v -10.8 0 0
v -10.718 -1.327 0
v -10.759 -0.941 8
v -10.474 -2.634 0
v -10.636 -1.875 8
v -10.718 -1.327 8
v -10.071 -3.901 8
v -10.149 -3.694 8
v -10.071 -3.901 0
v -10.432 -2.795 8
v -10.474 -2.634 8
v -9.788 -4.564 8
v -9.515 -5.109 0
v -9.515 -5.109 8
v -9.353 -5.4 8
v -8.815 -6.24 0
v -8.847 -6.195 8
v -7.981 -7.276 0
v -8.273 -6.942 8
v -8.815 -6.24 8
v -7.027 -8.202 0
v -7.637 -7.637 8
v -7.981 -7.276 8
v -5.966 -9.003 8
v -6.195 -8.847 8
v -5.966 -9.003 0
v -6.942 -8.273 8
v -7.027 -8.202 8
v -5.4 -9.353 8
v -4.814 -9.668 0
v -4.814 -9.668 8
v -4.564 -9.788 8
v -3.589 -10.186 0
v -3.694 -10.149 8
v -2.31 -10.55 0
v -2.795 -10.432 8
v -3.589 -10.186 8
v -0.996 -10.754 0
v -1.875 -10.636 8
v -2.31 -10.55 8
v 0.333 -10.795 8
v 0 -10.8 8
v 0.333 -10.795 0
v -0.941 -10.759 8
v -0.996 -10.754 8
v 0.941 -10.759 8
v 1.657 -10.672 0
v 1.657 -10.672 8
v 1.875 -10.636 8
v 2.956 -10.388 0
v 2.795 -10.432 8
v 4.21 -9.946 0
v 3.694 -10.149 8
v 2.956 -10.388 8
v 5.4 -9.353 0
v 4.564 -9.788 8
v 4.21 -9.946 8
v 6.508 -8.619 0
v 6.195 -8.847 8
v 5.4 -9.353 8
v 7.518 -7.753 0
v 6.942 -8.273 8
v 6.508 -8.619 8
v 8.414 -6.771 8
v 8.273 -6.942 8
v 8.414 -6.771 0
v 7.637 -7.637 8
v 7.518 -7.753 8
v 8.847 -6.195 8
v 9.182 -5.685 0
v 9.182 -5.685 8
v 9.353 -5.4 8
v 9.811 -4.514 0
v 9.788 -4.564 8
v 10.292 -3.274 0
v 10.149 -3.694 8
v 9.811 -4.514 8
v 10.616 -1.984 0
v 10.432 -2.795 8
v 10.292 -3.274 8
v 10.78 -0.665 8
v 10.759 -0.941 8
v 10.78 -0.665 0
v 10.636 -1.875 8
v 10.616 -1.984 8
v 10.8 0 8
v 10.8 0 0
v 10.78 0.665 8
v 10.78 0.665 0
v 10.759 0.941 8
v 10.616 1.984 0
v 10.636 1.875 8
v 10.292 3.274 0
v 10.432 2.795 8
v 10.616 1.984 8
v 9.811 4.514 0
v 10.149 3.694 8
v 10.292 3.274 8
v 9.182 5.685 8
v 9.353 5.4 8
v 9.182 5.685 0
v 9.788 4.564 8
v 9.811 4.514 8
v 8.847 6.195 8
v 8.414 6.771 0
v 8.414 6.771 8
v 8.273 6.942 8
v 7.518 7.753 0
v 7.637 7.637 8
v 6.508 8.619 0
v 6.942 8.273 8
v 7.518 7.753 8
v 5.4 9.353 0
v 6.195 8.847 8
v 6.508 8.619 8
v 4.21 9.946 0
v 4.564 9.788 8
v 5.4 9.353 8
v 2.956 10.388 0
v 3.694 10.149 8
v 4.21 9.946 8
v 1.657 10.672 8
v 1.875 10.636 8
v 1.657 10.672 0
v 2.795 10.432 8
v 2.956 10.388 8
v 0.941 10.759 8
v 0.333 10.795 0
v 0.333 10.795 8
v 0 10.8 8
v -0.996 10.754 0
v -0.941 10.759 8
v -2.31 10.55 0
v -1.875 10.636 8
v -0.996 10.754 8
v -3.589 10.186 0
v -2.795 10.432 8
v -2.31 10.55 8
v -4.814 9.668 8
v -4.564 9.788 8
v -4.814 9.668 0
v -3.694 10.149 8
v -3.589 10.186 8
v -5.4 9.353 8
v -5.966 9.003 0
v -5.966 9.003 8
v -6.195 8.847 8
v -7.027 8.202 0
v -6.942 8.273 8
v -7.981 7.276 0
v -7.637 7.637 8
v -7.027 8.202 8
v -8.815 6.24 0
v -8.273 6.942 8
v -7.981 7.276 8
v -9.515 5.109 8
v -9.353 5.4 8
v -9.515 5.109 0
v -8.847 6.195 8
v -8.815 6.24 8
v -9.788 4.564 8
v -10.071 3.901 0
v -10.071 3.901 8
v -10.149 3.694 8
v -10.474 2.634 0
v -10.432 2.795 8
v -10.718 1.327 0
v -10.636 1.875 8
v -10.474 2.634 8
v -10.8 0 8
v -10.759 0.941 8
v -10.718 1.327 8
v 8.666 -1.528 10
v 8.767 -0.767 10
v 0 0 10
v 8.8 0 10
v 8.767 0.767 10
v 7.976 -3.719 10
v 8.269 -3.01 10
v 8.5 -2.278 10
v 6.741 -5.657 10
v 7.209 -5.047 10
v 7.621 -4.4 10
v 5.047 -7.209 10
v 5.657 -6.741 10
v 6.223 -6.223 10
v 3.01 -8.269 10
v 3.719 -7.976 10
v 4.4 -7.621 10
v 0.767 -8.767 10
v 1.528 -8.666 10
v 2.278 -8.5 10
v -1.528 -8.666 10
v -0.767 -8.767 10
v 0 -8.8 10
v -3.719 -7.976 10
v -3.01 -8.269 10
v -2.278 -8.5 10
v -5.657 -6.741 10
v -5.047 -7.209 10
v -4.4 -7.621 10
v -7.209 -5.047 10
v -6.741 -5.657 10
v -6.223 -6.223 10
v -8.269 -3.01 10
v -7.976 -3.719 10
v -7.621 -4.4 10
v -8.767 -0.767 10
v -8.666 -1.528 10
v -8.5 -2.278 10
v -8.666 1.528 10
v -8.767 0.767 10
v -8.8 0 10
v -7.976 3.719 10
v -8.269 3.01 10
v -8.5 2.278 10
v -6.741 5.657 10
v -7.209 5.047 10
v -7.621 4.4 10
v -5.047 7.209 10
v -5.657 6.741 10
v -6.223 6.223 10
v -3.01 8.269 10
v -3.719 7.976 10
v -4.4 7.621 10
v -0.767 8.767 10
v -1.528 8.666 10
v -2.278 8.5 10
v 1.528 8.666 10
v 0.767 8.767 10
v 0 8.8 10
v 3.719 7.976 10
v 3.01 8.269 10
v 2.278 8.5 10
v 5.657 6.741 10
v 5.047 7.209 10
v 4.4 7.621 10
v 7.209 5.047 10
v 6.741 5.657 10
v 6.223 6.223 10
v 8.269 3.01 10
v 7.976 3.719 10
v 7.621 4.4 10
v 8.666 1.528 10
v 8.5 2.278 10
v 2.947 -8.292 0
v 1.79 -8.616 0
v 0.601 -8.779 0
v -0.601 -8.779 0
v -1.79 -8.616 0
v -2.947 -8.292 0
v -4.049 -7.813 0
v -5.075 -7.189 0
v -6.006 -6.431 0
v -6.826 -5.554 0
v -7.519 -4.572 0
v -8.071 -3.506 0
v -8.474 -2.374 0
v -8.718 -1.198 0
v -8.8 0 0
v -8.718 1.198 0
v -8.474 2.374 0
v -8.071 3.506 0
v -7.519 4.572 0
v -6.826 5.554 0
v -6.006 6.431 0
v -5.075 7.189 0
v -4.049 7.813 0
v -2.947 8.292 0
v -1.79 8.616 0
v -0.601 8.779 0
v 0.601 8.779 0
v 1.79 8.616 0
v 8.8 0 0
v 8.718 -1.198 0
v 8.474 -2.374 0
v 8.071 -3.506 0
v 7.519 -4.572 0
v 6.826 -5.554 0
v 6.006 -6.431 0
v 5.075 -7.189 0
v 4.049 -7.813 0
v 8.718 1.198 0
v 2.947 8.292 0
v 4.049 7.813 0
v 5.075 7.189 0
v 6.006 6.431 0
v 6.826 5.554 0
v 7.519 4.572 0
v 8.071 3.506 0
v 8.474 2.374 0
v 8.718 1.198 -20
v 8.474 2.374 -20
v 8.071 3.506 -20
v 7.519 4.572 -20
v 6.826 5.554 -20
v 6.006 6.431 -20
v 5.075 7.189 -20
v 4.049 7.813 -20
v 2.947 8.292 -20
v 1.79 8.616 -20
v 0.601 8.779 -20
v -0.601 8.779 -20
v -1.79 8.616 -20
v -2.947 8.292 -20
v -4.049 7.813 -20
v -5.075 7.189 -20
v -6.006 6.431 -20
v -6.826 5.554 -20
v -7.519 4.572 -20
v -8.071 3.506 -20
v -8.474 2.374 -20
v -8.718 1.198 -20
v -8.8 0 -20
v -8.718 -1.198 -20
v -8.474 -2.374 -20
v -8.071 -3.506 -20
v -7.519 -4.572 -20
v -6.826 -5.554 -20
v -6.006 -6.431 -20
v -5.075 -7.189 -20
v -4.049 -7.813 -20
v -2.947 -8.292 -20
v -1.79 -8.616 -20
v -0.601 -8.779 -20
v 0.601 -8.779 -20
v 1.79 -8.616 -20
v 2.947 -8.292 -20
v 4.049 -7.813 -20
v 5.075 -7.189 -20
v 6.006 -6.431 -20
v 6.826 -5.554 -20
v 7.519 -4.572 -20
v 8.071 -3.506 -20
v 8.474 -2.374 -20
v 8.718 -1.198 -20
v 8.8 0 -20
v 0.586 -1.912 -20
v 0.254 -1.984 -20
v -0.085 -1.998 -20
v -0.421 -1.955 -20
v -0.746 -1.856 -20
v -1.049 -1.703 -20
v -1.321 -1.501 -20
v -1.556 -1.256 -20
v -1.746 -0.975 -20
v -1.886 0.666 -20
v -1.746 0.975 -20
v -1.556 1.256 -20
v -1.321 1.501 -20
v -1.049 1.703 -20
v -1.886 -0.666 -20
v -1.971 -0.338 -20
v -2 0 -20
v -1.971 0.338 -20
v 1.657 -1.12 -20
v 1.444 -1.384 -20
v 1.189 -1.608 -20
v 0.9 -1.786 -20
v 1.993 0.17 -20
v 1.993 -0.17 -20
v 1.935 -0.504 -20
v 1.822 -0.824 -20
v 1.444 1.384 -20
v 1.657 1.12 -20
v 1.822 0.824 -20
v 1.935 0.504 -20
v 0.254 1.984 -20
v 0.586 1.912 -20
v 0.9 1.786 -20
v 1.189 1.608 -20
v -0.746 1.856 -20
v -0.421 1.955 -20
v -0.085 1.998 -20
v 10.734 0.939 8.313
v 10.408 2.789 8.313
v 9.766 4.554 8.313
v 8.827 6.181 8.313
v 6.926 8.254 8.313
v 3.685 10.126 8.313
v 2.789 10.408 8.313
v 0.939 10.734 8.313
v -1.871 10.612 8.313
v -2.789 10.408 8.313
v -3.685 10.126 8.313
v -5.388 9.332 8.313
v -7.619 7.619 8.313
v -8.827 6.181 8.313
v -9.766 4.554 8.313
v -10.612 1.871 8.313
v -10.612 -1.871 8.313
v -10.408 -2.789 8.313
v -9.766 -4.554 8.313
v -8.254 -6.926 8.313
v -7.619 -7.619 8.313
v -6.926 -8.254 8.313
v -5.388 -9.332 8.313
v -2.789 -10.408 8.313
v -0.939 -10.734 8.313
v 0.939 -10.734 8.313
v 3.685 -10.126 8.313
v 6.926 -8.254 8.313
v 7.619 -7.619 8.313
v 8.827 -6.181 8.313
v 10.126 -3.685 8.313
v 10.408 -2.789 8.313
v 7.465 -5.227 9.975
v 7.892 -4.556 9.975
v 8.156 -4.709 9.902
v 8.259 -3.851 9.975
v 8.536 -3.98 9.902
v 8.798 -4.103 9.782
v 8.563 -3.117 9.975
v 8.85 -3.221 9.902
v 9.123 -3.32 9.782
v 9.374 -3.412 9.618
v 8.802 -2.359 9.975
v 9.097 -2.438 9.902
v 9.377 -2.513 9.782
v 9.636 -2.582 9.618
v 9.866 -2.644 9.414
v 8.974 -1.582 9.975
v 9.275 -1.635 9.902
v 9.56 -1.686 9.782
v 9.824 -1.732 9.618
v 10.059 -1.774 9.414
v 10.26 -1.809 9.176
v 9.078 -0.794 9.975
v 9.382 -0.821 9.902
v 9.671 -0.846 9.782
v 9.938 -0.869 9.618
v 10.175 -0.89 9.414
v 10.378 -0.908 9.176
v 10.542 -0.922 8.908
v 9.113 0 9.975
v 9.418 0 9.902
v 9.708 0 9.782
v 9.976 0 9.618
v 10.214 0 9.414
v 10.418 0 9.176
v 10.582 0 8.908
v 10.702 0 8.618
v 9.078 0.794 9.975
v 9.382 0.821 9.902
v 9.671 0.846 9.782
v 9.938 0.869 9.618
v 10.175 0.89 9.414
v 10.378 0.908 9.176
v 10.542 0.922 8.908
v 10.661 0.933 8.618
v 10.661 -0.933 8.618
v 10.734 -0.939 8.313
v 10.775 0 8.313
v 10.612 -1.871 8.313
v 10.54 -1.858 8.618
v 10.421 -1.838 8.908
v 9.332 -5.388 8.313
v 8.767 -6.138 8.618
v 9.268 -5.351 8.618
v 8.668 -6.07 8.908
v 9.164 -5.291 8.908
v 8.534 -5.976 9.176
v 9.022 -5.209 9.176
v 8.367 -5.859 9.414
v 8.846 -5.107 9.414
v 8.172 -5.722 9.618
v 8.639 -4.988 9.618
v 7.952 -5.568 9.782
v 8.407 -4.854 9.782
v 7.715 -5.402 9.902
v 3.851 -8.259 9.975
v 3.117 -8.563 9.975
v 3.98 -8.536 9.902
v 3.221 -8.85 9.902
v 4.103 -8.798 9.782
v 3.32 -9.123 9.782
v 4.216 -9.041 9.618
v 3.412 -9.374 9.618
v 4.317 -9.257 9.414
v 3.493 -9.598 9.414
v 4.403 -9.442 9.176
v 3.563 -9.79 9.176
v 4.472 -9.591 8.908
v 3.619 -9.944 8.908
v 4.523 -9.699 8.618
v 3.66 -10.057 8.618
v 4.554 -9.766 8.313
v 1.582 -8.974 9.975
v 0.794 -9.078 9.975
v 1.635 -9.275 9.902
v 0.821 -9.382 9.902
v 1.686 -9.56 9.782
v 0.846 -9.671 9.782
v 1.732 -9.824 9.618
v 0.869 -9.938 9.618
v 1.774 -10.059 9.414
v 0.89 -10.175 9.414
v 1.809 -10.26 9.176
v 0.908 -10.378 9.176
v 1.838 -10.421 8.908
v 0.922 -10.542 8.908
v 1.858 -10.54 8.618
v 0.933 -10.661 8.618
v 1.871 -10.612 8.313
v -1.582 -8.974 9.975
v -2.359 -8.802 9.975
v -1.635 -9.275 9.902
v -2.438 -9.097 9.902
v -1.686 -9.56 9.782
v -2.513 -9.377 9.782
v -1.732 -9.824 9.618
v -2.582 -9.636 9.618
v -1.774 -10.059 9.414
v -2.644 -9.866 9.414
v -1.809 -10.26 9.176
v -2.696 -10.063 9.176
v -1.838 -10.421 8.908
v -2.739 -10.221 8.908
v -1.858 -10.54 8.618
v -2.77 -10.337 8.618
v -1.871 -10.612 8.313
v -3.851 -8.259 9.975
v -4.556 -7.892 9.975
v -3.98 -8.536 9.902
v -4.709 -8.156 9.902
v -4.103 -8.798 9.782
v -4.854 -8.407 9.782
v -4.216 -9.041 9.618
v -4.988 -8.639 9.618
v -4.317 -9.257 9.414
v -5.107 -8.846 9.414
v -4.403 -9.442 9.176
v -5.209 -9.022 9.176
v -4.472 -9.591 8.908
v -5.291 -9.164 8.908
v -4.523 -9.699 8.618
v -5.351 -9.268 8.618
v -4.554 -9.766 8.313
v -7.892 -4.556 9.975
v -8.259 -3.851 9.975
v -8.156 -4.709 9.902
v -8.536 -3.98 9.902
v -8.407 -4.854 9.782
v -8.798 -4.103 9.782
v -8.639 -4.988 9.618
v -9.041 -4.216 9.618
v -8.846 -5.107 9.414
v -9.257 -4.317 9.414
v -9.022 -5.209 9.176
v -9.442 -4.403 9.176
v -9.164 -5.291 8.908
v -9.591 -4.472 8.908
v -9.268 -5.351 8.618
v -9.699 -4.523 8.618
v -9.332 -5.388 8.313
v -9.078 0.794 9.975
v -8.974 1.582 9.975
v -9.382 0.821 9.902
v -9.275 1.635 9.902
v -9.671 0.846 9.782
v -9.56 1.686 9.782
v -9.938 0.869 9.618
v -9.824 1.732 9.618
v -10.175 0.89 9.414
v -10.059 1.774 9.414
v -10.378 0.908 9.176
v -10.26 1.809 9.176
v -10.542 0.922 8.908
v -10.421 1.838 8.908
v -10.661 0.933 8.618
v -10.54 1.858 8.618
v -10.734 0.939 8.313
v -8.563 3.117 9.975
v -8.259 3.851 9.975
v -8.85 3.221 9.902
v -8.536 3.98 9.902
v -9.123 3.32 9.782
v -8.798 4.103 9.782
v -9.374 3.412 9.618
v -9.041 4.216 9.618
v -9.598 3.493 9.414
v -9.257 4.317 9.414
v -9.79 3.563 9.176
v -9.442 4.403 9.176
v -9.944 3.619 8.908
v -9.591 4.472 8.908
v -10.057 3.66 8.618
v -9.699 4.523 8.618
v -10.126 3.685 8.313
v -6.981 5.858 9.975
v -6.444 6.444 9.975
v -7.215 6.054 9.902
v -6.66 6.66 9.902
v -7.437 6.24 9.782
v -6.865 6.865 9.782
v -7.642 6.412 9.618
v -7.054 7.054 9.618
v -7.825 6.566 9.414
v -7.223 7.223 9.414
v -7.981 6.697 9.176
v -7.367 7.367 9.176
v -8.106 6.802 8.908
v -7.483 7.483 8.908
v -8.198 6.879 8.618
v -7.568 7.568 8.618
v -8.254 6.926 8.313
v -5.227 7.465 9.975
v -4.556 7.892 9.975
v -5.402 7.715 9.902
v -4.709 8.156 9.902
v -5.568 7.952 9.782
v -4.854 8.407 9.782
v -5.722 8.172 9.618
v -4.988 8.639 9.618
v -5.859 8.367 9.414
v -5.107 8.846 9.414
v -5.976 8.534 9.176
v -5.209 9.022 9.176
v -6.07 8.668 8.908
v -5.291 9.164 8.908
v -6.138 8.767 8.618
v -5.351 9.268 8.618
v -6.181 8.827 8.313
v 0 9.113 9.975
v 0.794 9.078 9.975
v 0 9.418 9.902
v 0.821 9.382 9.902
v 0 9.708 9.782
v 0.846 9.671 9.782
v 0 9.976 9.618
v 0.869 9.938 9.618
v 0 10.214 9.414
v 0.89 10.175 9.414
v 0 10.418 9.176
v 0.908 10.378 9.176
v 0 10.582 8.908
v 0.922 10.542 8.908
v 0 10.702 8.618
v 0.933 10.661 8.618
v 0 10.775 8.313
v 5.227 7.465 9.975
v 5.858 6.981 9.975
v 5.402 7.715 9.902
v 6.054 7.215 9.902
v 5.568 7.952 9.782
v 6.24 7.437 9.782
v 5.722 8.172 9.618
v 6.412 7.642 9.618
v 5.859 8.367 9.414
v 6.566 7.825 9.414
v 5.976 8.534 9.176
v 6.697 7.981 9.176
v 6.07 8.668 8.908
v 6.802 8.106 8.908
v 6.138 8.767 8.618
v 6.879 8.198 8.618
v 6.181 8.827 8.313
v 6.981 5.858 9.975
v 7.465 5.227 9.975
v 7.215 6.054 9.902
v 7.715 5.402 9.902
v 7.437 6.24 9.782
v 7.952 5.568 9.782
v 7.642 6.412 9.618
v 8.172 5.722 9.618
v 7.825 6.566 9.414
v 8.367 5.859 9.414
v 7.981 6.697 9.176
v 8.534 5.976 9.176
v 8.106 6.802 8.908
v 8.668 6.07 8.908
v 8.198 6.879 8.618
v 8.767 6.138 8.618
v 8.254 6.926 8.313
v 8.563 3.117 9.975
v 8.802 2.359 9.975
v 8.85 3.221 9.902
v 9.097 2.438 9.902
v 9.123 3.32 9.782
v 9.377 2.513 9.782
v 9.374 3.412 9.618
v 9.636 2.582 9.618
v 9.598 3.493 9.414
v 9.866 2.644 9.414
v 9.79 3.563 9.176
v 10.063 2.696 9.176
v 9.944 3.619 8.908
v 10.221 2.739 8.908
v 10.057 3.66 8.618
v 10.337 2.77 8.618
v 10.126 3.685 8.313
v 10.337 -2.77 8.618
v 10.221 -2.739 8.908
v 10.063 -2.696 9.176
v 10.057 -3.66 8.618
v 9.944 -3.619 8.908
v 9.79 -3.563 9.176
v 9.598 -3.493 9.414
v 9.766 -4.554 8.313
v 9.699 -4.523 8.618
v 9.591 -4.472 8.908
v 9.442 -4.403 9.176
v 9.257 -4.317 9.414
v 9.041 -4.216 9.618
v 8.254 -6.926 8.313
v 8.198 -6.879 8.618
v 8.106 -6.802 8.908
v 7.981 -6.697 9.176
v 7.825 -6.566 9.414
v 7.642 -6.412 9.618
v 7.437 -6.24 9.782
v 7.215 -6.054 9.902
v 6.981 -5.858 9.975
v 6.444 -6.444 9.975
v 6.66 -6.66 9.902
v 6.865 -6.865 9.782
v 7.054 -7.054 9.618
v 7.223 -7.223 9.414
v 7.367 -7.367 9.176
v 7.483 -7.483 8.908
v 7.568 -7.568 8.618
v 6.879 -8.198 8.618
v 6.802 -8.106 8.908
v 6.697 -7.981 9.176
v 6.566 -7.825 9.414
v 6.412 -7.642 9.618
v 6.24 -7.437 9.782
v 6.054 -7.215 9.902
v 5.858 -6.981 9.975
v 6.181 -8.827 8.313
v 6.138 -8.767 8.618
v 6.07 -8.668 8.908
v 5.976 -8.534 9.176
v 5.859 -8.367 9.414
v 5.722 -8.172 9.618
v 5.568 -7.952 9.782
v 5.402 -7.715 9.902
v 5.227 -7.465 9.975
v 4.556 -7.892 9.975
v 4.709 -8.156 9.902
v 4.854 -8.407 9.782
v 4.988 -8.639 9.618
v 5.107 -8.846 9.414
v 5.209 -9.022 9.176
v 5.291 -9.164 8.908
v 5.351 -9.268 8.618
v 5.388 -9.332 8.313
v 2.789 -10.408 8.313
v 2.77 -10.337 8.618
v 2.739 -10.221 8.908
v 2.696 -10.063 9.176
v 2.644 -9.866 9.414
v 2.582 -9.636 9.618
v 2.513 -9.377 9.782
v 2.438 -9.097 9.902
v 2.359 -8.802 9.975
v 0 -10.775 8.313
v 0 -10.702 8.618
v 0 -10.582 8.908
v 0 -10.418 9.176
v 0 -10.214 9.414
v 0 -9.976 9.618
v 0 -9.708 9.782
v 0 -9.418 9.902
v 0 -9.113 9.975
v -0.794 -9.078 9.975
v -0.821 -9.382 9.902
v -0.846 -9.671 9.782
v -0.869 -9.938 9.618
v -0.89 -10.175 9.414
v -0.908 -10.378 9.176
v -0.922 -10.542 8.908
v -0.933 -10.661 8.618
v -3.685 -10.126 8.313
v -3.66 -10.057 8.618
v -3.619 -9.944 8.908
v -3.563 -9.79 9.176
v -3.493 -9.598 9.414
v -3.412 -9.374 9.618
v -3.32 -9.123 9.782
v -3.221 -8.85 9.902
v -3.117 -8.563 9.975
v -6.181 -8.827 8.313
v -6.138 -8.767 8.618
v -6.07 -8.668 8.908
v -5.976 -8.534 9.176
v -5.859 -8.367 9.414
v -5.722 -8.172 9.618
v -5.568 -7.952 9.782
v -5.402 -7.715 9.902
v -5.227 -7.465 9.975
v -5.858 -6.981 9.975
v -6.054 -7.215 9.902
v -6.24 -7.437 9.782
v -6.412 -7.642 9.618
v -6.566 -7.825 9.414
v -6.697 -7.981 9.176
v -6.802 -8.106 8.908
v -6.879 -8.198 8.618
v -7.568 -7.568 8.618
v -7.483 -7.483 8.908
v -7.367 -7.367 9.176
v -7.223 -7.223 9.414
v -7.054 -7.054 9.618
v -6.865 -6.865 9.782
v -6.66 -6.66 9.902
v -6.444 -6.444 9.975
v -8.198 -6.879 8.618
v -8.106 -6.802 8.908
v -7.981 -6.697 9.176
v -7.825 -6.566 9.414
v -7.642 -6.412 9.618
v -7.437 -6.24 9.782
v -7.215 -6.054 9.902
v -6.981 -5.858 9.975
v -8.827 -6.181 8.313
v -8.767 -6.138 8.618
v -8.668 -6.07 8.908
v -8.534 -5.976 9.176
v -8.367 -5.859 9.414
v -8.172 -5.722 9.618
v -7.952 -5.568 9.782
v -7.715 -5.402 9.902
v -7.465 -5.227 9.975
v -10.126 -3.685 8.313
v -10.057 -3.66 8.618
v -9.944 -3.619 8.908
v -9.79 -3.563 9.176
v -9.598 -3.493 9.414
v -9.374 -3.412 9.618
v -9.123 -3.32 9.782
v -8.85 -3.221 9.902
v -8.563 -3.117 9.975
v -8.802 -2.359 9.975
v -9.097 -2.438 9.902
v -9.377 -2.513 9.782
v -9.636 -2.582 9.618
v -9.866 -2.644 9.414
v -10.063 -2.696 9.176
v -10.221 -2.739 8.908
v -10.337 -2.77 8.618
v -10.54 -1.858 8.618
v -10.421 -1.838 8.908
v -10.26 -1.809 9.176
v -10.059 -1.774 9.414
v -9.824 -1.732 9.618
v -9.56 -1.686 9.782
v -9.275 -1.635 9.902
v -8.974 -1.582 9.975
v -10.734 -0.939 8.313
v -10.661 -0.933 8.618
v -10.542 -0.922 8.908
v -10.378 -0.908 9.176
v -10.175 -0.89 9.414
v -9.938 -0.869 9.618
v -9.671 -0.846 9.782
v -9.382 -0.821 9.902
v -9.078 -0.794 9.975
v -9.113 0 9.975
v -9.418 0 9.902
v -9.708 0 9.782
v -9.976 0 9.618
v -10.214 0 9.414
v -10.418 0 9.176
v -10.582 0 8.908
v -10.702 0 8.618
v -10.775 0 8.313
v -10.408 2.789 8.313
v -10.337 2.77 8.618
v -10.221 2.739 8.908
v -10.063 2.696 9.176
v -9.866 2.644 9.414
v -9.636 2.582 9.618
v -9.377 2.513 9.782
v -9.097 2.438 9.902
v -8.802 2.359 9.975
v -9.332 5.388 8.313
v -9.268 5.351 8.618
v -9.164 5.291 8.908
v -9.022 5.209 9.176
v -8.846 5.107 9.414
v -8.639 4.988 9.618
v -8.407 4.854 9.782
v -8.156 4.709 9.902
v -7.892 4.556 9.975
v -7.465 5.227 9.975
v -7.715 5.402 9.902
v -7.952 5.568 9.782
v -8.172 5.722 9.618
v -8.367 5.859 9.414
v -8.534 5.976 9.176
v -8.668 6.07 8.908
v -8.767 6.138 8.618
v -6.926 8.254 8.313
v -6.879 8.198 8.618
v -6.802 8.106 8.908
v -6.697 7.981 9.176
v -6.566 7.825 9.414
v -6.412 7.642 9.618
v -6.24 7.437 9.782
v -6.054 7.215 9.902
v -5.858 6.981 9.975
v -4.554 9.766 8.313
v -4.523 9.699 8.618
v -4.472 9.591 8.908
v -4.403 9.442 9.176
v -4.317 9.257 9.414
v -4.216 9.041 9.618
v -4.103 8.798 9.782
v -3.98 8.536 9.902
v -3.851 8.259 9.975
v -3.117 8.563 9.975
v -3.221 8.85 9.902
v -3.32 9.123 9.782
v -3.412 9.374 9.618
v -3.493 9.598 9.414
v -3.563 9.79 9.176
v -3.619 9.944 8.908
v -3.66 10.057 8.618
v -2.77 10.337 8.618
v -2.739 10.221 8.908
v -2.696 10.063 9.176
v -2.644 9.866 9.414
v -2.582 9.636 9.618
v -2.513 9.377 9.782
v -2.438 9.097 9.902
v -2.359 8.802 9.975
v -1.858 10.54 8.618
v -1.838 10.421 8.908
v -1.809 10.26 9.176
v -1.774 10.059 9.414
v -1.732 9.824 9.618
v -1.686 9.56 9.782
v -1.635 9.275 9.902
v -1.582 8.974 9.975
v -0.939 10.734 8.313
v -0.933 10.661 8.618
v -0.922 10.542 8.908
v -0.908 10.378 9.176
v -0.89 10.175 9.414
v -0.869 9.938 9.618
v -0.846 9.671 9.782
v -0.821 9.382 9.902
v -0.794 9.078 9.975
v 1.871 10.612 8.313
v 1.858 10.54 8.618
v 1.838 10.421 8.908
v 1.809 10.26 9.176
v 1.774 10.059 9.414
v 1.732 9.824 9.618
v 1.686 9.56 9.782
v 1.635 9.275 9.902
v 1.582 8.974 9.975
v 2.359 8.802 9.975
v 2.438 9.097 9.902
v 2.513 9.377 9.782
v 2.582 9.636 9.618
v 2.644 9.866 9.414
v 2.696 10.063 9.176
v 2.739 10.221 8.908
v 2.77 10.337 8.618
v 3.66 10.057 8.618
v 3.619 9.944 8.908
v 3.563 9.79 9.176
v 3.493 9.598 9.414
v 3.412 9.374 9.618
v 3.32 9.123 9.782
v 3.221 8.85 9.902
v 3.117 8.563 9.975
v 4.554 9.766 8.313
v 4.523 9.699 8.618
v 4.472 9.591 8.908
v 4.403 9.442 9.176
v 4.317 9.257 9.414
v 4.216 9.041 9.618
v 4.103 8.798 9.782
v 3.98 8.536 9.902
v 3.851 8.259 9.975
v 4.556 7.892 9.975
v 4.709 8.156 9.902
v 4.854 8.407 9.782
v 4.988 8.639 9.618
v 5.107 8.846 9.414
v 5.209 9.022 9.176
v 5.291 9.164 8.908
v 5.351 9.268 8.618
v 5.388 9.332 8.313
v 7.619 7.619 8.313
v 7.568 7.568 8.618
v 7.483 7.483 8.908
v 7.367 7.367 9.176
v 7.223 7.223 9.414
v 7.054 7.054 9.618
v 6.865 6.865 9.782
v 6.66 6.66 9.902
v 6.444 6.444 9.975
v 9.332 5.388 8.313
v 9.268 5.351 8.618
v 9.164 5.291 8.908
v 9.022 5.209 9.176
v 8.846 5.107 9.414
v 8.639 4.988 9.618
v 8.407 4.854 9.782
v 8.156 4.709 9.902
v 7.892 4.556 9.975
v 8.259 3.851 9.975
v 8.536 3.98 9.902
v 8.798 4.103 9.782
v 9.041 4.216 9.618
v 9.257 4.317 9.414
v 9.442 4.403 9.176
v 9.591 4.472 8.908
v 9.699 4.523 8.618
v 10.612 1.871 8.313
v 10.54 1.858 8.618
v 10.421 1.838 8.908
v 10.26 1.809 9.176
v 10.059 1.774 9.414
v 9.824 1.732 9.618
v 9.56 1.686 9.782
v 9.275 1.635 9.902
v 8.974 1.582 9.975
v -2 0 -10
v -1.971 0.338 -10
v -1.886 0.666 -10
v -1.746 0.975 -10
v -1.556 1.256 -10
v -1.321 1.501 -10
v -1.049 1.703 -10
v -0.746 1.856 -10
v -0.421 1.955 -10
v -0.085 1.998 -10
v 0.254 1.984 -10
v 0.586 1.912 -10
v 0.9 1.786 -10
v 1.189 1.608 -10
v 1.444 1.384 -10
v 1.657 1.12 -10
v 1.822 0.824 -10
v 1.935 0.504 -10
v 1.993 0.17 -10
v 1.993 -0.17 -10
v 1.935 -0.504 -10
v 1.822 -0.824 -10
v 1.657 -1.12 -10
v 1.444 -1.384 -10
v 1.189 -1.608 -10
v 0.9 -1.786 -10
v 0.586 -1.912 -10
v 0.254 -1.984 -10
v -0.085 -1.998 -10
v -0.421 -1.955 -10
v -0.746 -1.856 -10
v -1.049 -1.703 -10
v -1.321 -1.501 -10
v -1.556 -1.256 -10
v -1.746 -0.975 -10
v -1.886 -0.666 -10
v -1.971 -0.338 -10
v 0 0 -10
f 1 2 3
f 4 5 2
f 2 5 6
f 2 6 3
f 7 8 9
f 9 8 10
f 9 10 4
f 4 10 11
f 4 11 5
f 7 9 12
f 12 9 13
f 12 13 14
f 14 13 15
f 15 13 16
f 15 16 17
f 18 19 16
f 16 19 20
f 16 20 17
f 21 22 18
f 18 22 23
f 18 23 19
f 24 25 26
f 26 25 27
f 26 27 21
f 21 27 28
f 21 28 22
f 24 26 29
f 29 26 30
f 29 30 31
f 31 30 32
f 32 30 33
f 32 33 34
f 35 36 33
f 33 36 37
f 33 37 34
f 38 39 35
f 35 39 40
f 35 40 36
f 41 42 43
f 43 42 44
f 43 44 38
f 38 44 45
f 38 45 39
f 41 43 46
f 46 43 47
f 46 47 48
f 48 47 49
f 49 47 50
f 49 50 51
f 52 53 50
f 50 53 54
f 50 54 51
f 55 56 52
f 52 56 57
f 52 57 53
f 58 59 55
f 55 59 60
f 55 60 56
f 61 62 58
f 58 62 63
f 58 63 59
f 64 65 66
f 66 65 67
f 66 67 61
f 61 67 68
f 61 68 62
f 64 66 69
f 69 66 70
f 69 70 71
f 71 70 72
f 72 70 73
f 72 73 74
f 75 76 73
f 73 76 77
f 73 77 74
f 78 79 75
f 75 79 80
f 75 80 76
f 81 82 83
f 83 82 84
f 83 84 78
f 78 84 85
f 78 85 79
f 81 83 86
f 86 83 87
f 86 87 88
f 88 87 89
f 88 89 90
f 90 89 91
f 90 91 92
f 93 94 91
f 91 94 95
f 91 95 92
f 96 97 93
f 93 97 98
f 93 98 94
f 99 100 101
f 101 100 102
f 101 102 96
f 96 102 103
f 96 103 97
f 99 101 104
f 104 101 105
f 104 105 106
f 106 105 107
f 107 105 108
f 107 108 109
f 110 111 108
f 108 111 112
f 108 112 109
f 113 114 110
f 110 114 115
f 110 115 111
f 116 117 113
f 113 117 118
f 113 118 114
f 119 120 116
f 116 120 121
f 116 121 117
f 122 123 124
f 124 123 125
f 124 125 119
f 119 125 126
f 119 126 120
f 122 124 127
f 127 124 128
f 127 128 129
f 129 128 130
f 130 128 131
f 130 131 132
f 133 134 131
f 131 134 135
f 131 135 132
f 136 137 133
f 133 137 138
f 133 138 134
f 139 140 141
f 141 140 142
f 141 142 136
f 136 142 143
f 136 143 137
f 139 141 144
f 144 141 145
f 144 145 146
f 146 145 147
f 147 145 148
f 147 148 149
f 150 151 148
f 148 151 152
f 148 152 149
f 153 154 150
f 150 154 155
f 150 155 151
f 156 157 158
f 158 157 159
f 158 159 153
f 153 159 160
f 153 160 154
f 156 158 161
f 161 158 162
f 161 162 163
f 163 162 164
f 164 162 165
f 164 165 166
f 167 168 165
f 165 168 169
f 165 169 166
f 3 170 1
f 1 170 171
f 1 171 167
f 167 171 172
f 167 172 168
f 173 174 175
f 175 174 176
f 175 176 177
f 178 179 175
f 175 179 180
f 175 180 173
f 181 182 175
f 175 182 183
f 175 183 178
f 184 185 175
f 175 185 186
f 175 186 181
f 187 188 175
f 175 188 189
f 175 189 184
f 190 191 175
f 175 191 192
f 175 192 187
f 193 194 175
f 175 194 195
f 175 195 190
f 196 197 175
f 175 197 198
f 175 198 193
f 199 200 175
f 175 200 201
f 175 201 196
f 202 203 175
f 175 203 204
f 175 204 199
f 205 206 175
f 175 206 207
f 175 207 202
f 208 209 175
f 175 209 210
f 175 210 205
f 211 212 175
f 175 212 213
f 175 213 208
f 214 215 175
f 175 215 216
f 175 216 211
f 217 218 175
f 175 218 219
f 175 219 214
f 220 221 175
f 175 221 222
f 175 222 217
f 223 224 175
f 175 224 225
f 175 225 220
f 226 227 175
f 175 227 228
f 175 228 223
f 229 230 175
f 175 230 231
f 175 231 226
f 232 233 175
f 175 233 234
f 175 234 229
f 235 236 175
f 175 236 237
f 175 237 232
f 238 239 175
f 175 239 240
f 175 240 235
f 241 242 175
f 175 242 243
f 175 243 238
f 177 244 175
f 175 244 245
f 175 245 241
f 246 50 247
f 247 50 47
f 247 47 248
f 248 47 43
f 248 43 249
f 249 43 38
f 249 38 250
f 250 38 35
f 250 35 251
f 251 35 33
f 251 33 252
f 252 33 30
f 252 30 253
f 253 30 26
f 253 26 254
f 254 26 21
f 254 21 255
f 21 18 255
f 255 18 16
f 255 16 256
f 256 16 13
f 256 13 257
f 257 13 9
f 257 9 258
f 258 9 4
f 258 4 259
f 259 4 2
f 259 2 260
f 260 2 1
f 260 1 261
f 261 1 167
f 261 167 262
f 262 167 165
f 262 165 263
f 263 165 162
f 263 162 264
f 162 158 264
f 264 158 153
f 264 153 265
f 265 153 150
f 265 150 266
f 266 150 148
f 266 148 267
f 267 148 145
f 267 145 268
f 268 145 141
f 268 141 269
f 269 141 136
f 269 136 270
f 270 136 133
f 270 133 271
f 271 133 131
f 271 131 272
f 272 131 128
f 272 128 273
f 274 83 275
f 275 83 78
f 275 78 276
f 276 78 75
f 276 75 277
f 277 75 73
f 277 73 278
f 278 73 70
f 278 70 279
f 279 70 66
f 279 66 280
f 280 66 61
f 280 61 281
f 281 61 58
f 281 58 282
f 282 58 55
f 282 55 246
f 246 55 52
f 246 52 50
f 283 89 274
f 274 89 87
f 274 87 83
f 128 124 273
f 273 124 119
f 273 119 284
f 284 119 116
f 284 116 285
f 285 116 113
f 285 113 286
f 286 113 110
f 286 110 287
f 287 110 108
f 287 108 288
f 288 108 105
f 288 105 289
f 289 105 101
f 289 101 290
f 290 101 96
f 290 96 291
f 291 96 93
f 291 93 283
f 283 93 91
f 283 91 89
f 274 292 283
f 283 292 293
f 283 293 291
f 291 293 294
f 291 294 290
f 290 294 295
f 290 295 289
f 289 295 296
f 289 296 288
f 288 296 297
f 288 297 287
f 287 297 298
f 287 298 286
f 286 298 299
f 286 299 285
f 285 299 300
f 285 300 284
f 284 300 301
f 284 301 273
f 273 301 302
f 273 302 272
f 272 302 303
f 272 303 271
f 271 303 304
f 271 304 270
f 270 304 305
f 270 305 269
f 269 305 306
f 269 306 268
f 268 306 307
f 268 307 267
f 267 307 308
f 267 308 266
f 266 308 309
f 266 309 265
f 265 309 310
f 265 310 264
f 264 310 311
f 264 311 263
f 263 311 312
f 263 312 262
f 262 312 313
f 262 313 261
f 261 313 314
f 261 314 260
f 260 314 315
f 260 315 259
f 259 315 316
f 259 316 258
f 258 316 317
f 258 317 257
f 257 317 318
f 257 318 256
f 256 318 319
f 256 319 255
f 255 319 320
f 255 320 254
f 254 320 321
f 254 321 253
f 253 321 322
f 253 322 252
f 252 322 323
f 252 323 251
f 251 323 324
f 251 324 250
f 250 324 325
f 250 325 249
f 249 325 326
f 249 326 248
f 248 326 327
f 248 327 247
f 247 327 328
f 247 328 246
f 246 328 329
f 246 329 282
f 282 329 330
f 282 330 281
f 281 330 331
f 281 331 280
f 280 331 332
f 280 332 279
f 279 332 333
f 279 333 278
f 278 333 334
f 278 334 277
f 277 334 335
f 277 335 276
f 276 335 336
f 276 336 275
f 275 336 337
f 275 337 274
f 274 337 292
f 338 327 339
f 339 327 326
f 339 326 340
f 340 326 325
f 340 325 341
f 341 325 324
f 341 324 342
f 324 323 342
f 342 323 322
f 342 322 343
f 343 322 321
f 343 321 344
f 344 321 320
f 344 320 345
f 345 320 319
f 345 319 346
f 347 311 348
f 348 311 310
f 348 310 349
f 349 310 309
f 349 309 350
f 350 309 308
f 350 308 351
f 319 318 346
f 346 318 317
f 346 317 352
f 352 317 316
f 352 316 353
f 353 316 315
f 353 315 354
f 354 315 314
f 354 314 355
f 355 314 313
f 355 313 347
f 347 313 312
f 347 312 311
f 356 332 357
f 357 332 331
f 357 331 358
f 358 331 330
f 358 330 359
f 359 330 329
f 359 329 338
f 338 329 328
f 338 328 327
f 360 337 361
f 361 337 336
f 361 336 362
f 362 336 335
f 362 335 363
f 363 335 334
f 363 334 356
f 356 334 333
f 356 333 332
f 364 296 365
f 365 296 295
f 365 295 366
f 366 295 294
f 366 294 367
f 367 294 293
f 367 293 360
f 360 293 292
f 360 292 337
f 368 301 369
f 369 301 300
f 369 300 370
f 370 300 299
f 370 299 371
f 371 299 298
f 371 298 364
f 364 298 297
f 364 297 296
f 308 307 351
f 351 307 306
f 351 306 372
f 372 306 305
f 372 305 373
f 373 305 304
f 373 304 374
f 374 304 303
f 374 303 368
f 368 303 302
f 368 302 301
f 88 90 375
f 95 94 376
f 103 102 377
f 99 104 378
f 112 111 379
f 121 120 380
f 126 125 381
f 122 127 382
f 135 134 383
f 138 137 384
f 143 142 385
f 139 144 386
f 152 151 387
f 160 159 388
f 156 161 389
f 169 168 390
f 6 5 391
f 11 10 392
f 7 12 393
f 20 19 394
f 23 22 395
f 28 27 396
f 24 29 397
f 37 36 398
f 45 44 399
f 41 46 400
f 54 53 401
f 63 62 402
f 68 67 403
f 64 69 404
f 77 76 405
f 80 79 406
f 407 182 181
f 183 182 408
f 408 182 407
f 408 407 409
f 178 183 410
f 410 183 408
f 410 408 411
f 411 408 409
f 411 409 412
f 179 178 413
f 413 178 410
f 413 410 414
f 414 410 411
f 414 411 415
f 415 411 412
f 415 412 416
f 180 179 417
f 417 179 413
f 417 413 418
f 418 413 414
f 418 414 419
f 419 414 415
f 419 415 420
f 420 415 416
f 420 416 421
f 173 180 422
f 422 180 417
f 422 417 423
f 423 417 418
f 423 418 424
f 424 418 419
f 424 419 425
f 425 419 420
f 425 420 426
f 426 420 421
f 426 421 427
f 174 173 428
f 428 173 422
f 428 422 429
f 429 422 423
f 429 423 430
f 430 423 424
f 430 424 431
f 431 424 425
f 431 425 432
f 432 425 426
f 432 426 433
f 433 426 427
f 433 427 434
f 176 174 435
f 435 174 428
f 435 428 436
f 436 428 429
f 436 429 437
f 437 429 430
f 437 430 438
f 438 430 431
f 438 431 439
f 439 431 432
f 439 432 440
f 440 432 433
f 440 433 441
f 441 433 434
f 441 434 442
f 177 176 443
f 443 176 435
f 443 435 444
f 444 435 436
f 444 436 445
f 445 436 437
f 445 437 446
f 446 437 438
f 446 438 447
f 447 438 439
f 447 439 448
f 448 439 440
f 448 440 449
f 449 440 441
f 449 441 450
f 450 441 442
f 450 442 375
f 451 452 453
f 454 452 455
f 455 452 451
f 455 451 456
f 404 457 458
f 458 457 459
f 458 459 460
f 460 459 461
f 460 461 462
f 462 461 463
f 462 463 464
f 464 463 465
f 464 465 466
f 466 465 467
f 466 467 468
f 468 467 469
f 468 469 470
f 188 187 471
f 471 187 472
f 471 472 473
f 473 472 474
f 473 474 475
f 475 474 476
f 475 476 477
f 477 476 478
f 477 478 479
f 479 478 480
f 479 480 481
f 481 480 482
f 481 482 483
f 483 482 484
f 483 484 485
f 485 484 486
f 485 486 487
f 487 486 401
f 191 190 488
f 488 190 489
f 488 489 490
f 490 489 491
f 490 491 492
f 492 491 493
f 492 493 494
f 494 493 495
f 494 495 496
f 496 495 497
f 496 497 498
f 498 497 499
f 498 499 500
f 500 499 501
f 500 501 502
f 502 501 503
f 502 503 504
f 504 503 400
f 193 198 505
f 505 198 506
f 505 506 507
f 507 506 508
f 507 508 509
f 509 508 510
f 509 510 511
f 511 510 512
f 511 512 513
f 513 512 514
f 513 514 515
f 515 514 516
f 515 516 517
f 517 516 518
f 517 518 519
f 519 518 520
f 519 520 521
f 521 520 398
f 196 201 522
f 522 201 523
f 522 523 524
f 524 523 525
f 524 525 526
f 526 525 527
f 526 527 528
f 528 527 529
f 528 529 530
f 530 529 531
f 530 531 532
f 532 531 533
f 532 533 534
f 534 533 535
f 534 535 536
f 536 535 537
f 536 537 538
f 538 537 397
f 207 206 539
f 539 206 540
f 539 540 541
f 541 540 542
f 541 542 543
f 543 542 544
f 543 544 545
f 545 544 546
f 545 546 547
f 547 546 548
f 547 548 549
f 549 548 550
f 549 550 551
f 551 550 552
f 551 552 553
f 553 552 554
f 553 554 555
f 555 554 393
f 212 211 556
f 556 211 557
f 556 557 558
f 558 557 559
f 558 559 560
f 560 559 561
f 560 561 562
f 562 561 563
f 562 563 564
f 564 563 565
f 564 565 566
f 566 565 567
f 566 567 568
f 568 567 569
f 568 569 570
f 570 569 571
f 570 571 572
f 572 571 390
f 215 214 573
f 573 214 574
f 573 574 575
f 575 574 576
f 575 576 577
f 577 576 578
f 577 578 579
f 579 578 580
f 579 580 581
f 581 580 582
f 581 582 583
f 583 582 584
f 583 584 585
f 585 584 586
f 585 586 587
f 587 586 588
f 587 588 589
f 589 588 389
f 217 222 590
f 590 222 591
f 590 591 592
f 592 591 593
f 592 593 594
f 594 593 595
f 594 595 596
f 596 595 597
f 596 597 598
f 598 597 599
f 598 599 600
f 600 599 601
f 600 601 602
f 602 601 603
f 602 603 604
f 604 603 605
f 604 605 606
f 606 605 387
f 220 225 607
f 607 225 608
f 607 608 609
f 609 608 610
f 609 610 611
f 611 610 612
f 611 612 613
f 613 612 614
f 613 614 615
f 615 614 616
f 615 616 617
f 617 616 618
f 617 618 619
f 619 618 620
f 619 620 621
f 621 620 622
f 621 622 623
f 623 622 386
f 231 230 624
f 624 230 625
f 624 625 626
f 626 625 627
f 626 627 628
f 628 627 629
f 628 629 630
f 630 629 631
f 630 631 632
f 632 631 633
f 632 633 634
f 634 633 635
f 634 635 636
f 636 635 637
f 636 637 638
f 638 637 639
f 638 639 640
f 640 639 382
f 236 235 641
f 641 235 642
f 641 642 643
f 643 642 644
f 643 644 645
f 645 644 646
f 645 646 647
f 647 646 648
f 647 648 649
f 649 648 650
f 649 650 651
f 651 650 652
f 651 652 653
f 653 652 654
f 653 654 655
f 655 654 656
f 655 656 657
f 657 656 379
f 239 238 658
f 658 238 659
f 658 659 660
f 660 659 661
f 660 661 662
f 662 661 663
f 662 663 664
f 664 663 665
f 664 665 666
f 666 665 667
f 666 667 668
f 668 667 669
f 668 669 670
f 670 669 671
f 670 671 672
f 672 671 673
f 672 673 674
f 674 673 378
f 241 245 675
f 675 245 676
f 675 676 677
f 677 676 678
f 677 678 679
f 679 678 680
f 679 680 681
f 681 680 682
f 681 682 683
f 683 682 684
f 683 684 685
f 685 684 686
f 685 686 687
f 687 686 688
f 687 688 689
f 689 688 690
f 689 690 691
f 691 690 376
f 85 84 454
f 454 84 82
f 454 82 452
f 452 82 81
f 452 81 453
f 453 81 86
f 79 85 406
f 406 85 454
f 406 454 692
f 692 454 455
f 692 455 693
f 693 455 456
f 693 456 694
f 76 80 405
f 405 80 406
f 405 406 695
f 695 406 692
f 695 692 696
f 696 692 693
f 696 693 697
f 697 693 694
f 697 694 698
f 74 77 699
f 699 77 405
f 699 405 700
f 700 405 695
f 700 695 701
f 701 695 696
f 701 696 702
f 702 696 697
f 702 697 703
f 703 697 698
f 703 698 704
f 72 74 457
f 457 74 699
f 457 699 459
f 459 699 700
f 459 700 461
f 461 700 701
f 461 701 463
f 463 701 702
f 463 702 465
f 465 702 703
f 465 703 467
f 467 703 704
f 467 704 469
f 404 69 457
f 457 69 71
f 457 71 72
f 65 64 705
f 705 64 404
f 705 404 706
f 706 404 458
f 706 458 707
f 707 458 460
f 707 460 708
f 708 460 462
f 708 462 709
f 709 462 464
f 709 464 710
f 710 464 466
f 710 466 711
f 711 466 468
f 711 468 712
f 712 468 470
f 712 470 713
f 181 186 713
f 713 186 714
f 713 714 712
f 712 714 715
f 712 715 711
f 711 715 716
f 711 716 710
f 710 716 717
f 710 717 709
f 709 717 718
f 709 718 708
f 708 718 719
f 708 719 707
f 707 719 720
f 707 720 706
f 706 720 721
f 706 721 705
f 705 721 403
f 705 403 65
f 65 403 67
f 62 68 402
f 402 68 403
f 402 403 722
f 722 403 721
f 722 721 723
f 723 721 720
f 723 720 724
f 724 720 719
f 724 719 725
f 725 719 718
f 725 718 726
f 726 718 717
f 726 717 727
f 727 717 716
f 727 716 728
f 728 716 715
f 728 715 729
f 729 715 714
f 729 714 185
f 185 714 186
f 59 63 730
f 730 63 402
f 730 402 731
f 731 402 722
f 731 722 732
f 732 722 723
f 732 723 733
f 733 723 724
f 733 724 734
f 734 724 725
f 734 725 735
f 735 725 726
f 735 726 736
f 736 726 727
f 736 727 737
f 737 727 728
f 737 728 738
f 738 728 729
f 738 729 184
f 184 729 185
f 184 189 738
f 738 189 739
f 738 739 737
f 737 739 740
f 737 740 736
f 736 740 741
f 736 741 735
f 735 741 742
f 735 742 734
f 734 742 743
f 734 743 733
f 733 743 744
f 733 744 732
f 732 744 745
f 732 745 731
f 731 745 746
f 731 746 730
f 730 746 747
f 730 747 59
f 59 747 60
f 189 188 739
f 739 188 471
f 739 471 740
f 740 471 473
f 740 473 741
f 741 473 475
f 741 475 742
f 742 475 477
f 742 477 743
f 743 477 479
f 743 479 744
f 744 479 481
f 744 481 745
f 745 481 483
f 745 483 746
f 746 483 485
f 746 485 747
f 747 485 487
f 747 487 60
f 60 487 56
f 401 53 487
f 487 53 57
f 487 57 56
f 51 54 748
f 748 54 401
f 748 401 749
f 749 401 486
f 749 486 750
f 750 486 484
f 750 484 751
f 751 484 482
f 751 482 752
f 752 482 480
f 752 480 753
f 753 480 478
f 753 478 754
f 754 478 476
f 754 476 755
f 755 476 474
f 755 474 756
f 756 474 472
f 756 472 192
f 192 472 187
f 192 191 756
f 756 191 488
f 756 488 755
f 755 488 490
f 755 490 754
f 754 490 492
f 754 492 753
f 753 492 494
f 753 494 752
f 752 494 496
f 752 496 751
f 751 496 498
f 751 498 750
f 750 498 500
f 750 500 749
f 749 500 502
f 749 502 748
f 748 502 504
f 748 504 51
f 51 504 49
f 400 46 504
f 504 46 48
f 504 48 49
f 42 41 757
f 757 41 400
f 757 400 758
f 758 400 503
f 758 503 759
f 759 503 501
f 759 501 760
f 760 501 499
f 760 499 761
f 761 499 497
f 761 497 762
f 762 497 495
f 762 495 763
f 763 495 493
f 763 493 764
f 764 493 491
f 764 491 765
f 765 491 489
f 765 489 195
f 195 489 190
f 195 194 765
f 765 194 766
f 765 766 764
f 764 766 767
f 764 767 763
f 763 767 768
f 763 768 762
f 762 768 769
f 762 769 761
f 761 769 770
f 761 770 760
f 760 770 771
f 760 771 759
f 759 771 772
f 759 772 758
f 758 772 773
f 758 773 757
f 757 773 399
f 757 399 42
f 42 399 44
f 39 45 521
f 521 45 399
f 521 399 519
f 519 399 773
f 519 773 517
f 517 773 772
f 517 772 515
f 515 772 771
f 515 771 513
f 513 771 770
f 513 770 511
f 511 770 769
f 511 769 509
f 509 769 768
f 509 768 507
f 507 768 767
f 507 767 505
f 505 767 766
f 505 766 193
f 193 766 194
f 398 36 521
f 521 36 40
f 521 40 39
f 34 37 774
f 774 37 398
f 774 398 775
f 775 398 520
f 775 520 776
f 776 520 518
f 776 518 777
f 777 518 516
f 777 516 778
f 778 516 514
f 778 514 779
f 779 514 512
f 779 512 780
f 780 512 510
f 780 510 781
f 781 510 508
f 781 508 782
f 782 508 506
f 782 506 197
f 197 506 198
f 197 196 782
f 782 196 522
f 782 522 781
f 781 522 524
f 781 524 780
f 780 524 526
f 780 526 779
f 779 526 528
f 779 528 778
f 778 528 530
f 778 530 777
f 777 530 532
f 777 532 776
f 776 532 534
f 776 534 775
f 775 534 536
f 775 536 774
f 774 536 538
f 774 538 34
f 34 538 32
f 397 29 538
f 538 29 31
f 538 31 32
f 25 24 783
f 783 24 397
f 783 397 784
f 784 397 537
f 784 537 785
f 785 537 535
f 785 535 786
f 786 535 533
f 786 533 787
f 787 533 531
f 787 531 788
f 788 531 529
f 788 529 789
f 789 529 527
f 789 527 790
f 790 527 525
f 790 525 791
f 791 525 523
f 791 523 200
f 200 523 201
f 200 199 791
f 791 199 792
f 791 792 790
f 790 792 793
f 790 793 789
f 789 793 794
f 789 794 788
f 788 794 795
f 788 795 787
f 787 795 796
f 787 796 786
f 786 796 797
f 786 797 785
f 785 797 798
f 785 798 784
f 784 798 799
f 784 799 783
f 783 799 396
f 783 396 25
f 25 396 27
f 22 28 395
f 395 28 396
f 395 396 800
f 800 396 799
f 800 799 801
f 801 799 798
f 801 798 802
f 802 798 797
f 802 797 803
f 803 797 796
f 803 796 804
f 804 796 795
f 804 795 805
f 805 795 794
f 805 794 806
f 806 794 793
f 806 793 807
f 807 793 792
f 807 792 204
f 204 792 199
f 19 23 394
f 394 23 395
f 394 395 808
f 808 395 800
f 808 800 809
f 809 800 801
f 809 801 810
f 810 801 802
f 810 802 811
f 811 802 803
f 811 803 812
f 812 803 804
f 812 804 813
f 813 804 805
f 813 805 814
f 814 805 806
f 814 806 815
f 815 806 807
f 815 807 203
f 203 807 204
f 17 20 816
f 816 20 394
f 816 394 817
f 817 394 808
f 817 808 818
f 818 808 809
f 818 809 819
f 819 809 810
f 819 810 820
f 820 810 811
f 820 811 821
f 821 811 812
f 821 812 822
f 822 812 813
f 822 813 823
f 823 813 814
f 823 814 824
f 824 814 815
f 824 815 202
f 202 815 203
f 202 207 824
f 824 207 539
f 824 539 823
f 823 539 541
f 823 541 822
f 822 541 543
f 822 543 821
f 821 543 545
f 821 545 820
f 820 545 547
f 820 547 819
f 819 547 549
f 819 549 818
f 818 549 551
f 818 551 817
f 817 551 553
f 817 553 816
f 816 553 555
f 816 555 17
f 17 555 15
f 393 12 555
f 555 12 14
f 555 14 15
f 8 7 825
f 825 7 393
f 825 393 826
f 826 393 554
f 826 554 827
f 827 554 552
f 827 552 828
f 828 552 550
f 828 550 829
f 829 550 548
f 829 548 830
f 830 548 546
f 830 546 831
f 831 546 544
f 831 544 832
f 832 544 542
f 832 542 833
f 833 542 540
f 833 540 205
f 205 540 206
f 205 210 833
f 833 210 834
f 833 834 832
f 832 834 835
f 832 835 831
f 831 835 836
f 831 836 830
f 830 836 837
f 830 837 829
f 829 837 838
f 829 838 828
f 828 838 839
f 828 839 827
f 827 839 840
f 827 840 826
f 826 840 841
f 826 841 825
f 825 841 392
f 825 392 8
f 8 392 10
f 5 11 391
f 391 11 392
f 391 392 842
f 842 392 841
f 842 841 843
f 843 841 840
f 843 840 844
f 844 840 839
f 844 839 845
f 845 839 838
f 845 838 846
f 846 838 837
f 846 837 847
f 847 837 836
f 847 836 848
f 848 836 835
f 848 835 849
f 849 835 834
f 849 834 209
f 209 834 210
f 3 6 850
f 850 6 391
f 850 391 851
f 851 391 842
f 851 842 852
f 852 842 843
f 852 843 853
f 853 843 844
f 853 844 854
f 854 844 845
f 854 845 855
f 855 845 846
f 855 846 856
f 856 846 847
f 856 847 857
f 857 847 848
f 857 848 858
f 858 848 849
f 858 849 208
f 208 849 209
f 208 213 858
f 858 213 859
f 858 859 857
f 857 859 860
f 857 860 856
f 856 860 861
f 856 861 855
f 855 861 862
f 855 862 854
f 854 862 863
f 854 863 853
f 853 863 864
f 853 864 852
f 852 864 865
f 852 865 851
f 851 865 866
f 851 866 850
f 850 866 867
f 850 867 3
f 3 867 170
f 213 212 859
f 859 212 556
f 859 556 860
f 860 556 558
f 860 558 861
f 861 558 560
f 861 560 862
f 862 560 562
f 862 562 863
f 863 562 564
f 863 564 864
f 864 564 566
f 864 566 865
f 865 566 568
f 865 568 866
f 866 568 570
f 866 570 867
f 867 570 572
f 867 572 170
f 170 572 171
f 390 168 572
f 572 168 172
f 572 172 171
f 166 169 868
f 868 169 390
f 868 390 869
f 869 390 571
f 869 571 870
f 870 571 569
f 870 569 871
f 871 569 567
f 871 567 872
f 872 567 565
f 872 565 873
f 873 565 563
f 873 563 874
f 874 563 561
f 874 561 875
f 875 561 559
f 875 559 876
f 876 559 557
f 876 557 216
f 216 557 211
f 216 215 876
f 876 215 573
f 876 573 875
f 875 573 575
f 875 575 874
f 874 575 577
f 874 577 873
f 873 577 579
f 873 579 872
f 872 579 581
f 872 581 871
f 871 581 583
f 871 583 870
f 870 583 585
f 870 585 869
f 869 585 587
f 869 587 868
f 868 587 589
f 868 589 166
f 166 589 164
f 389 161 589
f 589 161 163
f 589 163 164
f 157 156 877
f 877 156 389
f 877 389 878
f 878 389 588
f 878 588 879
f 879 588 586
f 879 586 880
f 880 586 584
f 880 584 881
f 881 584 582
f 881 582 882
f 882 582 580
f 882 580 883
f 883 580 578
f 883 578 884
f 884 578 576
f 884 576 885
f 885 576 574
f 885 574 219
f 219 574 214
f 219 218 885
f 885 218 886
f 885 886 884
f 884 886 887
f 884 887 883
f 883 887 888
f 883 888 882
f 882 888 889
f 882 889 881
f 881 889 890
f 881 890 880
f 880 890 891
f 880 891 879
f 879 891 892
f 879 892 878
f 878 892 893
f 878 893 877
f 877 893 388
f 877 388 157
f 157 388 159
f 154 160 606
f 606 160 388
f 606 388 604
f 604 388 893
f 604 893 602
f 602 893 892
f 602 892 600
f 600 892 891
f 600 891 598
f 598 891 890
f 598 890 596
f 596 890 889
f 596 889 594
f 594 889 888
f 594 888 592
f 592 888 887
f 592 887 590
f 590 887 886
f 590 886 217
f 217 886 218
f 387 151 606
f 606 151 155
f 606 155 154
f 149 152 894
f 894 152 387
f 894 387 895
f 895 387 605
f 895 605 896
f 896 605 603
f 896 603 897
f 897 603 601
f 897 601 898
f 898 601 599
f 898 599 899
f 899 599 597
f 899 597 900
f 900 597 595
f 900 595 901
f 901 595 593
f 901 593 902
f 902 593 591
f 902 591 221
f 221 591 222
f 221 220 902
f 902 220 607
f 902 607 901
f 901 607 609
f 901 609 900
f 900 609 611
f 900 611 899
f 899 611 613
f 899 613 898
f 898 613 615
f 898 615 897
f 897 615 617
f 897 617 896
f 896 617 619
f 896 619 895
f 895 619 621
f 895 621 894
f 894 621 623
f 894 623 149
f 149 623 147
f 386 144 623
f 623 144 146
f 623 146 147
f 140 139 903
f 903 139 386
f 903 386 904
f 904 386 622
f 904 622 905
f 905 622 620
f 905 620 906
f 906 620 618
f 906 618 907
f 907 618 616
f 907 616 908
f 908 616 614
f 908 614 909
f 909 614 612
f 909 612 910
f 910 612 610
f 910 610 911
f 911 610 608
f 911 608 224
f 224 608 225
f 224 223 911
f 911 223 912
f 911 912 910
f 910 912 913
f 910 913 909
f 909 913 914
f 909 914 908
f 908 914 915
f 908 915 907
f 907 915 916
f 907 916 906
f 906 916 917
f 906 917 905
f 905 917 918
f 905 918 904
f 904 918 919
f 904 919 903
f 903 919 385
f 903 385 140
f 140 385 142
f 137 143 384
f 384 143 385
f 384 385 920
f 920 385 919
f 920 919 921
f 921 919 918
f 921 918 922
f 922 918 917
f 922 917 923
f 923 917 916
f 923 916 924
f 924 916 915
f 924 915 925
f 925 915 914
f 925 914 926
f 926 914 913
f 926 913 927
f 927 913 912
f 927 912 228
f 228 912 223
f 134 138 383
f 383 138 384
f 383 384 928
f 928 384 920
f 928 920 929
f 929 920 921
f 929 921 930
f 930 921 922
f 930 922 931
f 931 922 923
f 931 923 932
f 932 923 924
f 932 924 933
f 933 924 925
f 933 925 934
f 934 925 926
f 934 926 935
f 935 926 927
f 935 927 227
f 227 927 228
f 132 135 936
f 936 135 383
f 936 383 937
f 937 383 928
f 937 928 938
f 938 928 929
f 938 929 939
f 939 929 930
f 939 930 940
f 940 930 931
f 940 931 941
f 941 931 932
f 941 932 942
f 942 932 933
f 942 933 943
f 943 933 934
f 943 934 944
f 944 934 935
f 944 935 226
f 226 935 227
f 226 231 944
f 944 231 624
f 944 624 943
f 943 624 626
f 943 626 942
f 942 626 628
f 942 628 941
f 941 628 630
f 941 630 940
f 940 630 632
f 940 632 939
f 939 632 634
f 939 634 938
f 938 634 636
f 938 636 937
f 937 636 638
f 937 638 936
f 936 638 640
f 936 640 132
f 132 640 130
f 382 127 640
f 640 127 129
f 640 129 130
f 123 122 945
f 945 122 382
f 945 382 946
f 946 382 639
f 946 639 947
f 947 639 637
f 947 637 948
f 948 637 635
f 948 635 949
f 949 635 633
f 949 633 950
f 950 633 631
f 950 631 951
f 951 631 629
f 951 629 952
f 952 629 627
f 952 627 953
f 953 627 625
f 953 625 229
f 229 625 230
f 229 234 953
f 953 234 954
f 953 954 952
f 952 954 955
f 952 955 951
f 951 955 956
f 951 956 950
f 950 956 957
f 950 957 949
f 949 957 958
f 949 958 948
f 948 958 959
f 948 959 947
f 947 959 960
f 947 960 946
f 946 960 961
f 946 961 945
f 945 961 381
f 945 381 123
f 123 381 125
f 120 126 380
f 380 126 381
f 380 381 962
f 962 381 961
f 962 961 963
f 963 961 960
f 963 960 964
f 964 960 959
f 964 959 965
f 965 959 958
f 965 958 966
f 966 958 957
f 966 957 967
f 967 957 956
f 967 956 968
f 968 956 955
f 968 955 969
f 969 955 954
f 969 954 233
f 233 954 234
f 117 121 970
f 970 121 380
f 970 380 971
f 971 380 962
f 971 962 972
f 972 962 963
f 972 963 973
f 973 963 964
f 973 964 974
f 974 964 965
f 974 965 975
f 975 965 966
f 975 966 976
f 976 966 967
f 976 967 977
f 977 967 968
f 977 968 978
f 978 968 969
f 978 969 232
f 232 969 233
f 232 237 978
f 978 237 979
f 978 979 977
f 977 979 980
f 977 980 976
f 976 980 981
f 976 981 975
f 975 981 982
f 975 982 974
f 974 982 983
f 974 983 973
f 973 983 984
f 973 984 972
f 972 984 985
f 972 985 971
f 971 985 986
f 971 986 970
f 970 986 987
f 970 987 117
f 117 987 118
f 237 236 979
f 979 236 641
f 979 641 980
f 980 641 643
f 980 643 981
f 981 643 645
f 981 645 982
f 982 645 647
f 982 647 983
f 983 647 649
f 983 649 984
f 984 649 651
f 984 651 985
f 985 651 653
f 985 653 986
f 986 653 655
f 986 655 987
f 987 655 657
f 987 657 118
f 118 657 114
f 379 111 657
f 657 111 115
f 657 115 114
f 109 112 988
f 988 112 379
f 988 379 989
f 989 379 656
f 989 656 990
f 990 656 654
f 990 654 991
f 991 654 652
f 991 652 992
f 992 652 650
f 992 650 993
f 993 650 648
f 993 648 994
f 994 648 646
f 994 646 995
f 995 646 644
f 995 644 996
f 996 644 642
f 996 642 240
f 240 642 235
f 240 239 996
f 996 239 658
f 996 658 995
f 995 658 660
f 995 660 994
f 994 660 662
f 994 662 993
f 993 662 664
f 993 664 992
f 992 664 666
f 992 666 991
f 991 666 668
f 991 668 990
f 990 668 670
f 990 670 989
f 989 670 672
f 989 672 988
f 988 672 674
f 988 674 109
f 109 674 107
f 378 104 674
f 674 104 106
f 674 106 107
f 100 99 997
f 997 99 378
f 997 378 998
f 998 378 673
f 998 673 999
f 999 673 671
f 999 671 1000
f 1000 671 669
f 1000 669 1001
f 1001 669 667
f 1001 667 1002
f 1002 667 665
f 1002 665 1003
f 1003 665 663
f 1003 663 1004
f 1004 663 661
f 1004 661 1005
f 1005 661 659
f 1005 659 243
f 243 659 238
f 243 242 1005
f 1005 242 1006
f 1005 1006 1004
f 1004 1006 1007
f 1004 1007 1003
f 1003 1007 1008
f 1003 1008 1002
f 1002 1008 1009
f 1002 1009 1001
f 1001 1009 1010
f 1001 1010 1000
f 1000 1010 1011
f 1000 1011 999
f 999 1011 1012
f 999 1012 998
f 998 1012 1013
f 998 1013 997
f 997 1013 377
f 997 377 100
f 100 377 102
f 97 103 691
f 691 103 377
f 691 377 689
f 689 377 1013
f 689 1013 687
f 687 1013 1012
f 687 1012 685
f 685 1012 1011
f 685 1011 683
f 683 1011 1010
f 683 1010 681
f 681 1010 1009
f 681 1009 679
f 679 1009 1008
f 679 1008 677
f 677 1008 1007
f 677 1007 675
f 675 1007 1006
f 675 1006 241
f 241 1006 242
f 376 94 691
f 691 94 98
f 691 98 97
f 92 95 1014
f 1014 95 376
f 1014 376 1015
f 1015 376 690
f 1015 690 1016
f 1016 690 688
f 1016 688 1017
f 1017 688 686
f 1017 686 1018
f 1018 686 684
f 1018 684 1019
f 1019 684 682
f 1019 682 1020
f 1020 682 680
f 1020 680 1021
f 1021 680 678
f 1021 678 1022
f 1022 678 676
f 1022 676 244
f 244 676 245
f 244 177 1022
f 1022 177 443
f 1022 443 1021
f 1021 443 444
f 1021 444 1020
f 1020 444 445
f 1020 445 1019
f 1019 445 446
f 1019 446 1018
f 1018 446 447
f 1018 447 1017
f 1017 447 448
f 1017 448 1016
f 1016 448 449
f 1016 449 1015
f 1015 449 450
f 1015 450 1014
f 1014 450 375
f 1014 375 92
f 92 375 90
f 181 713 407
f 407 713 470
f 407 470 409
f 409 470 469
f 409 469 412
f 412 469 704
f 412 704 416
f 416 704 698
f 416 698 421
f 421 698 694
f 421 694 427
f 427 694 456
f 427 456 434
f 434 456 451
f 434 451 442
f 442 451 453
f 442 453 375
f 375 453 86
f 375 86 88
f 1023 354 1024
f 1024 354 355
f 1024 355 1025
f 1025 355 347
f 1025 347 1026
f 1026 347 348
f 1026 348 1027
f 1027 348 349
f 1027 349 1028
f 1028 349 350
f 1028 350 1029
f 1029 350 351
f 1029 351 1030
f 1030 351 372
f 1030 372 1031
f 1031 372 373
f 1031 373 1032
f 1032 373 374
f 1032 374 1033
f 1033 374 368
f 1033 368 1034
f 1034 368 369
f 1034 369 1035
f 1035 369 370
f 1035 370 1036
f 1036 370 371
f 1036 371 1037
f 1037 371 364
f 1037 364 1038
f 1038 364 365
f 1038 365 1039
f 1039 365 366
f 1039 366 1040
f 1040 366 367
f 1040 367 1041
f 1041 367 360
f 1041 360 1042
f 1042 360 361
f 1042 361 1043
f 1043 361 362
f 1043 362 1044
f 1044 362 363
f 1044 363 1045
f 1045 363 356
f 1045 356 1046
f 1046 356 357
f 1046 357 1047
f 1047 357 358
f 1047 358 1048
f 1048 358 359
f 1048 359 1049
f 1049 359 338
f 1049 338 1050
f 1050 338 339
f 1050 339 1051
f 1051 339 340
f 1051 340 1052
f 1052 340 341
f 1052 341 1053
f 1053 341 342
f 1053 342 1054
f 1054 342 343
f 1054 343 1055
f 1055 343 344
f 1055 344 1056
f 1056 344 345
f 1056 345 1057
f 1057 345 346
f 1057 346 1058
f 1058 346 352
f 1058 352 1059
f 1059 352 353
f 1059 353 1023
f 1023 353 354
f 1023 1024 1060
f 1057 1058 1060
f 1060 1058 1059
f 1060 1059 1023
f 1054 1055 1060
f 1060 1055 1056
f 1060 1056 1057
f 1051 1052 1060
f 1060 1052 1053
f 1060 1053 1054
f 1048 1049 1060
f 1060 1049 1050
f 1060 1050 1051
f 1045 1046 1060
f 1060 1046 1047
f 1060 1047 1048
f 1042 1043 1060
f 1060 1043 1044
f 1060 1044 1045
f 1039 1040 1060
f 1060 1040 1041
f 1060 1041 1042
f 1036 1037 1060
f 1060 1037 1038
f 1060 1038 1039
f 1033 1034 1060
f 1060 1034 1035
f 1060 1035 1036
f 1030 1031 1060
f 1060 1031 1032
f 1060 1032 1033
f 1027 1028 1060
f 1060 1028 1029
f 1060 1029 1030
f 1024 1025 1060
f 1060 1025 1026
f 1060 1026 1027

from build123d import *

# Parameters (mm, degrees)
SKETCH_1_R          = 10.8
EXTRUDE_1_DEPTH     = 10
SKETCH_2_R          = 8.8
EXTRUDE_2_DEPTH     = 20
FILLET_1_R          = 2
SKETCH_3_R          = 2
CUT_EXTRUDE_1_DEPTH = 10


with BuildPart() as part:
    # 草图1 → 凸台-拉伸1 (new body)
    with BuildSketch(Plane.XY):
        Circle(SKETCH_1_R)
    extrude(amount=EXTRUDE_1_DEPTH)

    # 草图2 → 凸台-拉伸2 (add)
    with BuildSketch(Plane(origin=(0, 0, 0), x_dir=(-1, 0, 0), z_dir=(0, 0, -1))):
        Circle(SKETCH_2_R)
    extrude(amount=EXTRUDE_2_DEPTH)

    # 圆角1
    fillet_1_edges = [part.edges().sort_by_distance(p)[0] for p in [
        (-10.8, 0, 10),
    ]]
    fillet(fillet_1_edges, radius=FILLET_1_R)

    # 草图3 → 切除-拉伸1 (cut)
    with BuildSketch(Plane(origin=(0, 0, -20), x_dir=(-1, 0, 0), z_dir=(0, 0, -1))):
        Circle(SKETCH_3_R)
    extrude(amount=-CUT_EXTRUDE_1_DEPTH, mode=Mode.SUBTRACT)


solid = part.part
